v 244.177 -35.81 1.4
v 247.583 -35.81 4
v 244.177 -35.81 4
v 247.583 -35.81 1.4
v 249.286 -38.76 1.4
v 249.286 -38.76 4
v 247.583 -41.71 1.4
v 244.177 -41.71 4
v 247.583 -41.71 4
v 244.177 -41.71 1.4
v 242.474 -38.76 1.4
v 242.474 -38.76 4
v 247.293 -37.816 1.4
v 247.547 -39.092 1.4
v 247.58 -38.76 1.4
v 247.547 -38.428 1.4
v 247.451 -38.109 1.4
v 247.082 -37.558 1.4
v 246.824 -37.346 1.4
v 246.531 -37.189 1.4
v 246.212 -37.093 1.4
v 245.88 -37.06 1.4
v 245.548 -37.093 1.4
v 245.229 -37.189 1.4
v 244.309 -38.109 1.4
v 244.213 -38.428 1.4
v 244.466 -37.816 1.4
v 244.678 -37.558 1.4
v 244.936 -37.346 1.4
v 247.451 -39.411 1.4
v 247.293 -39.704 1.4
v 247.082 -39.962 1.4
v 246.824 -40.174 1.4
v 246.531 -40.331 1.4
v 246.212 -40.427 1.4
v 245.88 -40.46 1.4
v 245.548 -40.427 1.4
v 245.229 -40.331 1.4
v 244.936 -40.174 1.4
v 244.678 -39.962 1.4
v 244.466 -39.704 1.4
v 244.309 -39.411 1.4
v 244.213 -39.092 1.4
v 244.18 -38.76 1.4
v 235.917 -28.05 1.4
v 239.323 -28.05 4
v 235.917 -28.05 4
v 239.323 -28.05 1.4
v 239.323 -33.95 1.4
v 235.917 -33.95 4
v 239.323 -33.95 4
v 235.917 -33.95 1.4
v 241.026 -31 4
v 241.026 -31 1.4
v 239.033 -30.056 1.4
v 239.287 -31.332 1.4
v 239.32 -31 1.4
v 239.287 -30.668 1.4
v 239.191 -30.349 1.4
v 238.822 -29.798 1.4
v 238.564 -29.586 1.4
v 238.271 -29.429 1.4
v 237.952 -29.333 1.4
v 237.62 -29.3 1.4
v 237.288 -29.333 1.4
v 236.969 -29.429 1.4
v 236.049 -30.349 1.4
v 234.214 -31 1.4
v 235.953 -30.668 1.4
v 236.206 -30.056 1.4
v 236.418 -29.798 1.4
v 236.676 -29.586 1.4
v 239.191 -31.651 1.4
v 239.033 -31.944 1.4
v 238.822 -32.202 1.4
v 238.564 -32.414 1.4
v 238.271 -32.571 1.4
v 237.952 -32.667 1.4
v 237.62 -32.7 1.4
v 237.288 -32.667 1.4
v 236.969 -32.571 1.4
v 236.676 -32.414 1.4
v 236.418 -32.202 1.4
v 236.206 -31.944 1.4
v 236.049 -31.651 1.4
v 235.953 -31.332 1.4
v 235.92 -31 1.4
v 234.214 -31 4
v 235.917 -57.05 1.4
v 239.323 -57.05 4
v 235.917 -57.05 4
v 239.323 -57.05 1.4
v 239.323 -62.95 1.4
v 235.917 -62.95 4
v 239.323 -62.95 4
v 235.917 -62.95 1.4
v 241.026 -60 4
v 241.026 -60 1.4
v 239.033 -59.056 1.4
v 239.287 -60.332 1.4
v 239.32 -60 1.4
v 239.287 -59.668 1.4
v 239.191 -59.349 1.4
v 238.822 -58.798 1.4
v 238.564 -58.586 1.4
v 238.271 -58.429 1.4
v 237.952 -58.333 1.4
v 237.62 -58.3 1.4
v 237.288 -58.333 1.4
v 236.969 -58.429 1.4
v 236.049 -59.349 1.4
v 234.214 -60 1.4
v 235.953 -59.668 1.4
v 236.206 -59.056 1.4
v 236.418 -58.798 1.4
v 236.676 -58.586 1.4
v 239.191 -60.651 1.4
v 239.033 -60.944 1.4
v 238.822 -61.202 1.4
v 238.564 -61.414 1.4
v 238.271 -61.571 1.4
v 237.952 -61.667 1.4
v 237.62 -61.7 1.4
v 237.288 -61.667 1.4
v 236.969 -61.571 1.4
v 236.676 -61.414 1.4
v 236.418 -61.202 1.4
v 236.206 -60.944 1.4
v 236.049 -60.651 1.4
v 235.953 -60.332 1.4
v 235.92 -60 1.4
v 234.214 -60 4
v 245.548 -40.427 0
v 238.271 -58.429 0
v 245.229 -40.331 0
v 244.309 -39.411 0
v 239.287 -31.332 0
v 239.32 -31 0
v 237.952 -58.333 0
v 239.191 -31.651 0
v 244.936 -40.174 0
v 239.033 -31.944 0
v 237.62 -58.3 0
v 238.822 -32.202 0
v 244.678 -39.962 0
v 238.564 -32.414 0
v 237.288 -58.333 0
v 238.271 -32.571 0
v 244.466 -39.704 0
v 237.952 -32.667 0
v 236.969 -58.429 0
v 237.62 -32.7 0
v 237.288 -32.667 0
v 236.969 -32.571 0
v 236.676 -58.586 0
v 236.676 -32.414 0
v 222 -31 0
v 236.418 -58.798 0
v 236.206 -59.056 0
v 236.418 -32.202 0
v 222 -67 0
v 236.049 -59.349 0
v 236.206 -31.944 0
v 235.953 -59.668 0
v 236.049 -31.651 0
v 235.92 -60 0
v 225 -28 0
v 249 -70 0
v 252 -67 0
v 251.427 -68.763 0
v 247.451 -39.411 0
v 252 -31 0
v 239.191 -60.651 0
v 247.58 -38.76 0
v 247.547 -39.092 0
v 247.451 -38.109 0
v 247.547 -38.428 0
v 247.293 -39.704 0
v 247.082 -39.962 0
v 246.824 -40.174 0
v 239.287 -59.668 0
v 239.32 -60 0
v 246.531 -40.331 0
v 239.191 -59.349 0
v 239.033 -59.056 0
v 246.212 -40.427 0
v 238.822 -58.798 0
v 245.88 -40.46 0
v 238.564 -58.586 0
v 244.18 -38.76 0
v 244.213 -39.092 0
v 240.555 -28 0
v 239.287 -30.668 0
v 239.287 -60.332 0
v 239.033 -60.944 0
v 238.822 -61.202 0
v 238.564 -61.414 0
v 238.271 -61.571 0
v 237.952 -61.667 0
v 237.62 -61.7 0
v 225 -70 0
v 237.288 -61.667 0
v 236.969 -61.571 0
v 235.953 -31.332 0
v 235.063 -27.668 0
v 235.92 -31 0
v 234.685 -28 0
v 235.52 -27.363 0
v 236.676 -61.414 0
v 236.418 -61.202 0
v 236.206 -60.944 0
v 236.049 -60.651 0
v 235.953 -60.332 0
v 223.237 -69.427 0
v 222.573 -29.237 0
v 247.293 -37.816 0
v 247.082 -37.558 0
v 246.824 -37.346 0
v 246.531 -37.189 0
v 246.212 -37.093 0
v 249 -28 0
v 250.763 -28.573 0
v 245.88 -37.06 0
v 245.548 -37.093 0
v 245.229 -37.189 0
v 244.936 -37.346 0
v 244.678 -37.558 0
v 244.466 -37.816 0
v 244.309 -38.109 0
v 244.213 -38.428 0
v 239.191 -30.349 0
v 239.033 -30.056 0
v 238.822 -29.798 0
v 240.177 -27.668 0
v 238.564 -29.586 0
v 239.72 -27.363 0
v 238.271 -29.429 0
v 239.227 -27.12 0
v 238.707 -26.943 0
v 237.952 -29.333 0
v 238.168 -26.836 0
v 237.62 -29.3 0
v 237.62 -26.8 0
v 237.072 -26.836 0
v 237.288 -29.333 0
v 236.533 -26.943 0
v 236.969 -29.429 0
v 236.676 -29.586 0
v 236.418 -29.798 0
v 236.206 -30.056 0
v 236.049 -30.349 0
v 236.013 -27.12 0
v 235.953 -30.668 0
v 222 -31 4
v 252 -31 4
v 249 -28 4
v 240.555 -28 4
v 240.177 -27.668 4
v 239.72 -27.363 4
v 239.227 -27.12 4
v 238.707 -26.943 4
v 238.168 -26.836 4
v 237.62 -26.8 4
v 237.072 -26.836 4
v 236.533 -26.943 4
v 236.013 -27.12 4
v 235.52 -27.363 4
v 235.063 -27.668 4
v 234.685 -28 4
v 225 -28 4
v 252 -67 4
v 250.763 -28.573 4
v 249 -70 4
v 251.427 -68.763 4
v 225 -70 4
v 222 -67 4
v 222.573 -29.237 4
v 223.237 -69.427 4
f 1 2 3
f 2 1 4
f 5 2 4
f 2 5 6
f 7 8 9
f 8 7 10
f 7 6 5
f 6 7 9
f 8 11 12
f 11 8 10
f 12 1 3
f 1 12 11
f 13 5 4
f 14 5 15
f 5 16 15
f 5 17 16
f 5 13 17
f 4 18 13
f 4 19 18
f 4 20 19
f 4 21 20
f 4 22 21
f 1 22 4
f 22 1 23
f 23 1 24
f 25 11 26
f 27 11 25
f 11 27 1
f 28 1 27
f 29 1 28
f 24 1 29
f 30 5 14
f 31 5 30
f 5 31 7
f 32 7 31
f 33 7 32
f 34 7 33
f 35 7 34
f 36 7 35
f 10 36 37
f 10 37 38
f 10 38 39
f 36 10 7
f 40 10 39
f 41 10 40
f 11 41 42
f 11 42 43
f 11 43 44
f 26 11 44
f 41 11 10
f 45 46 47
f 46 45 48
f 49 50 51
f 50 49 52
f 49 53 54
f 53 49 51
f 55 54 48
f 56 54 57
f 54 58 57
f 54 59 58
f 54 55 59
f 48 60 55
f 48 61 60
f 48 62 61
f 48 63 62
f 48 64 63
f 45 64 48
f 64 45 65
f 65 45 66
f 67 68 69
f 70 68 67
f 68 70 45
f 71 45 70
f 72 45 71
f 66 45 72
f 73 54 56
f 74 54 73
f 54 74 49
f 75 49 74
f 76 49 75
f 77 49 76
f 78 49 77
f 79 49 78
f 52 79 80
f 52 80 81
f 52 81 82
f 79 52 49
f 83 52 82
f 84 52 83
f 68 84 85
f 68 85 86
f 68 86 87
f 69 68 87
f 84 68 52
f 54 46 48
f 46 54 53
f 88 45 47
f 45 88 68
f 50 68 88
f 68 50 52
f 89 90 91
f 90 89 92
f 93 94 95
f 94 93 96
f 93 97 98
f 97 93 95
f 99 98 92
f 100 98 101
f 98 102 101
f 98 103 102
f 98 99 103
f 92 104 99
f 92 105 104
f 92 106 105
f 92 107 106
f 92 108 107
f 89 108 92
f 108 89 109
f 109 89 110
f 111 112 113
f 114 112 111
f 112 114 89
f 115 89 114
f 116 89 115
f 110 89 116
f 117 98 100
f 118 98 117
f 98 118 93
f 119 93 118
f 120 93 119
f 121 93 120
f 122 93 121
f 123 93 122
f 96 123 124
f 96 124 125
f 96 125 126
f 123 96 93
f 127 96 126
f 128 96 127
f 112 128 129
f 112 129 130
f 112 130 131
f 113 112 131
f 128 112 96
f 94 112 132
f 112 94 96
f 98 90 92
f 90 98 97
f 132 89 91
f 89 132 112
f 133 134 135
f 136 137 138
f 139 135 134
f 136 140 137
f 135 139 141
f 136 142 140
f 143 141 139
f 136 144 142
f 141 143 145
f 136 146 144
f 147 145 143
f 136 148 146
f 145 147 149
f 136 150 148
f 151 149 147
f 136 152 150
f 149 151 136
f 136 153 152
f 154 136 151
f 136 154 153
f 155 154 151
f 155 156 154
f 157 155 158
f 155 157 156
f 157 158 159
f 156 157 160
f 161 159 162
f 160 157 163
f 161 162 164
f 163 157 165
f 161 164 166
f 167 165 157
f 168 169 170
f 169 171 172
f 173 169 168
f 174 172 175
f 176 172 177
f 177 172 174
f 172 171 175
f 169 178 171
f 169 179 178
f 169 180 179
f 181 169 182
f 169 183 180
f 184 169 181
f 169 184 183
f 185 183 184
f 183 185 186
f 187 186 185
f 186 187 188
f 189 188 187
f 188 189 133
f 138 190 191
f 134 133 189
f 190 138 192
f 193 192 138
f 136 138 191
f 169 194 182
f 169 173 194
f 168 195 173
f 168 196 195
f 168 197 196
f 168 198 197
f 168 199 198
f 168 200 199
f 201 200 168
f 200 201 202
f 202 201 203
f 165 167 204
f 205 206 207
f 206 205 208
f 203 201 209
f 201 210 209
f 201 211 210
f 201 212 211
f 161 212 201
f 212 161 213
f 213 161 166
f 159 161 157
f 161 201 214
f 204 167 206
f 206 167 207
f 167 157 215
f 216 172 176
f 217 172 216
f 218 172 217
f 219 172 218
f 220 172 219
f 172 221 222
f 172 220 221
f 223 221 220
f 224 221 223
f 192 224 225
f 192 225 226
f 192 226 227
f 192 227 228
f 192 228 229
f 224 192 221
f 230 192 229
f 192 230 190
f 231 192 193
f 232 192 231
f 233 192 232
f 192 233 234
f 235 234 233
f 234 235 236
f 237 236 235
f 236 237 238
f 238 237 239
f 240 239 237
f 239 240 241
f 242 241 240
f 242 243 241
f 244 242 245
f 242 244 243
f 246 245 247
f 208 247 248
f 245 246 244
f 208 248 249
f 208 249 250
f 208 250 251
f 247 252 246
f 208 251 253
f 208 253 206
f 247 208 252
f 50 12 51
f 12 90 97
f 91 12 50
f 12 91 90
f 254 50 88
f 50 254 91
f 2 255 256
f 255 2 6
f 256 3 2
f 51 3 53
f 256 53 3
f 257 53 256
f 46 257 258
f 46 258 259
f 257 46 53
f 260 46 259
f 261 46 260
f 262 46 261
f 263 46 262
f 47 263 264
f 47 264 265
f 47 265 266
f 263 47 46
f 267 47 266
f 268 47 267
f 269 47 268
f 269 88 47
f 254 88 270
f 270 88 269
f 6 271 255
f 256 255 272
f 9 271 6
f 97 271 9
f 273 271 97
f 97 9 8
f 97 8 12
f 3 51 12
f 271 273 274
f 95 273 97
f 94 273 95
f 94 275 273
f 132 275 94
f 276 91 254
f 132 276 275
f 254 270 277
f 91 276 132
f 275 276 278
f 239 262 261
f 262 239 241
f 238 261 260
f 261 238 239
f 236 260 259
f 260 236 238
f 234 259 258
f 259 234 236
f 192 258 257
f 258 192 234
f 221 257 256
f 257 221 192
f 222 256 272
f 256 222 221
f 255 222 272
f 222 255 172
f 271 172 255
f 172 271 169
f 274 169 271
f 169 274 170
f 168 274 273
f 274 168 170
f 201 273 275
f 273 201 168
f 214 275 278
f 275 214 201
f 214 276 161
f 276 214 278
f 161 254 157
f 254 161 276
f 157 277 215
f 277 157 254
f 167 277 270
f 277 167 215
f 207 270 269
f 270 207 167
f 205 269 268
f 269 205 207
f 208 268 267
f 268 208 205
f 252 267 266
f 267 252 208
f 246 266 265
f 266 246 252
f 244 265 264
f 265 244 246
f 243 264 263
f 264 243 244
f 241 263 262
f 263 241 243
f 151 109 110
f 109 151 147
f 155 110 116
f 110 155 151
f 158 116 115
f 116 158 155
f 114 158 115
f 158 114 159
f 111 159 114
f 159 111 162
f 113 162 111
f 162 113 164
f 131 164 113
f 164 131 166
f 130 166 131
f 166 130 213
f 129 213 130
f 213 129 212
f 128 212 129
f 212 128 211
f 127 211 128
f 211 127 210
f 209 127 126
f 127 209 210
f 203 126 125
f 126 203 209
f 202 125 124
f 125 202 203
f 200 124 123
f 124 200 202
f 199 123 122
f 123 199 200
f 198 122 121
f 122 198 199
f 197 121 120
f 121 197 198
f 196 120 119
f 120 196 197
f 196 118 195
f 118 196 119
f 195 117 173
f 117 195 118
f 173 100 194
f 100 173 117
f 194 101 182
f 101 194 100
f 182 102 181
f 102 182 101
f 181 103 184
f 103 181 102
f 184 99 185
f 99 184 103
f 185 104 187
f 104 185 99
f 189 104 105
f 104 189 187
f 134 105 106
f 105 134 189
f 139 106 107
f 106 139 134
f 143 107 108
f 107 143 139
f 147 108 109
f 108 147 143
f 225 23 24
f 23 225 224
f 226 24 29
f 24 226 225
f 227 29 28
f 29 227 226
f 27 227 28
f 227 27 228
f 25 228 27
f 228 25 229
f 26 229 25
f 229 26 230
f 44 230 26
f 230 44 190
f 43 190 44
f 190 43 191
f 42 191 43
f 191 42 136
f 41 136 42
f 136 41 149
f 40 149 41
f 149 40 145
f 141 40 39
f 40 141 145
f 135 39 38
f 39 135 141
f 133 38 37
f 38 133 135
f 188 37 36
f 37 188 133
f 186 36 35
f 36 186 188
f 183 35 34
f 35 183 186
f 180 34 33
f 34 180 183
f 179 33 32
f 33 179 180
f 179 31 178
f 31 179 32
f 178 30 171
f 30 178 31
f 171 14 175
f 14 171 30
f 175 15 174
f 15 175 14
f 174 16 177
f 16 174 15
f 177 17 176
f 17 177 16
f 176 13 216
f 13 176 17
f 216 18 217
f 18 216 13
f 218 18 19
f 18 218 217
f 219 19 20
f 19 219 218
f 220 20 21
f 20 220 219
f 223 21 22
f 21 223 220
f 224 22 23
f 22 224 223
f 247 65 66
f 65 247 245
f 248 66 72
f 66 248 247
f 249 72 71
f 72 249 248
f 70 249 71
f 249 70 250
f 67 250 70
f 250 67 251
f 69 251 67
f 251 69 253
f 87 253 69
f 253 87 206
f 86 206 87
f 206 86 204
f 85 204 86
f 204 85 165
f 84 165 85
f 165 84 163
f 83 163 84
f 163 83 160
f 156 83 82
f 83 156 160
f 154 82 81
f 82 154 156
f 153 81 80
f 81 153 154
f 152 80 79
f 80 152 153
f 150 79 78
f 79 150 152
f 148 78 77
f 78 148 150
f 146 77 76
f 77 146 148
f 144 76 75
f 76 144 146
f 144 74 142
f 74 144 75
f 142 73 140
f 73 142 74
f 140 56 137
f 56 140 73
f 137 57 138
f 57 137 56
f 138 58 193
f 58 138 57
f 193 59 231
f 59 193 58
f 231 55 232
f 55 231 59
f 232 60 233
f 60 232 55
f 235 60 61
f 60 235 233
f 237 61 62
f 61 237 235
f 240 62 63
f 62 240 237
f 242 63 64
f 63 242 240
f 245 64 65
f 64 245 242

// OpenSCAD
// NEXUS plate 2 rear pad - a small plain plate on plate 2's rear, to drill for whatever comes next (MEC-19)
//
//   openscad -D 'PART="tray"' -o plate2-rear-pad.stl plate2-rear-pad.scad
//
// STATUS 2026-10-06: PROPOSED with Hedi, to go in the same print order as the carrier and compute trays (one order costs less than two).
//
// FRAME. Plate 2's own: x from the front to the rear, y from the vehicle's RIGHT edge to its LEFT, mm (the layout frame of MEC-15 /
// MEC-17 / hardware/scripts/chassis-layout.py). Plates 1, 2 and 3 are identical, so plate3-data.scad is plate 2's data too. With z up the
// layout frame is a mirror image of the real world, so the output passes through real() once. The pad's underside is z 0, on plate 2's top face.
//
// WHERE, AND WHY THERE. MEC-12 keeps the rear of plate 2 (x 224-266) empty for the harness to the fascia's three ports. The pad takes the part of
// it that nothing needs: x 222-252, y 28-70. It stays clear of
//   - the cross-slot (x 260.3-265.7) and the fascia pads and clamp holes (x 262.9), which the J7 CAN lead and the fascia harness use;
//   - the chassis standoffs at (256.82, 22.17 and 98.36), 6 mm hexagons: 3.4 mm to the nearest;
//   - the lane of the J7 CAN lead, which comes down the cross-slot at about y 74 and runs forward to board B (y 92 at x 190): the pad ends at y 70;
//   - the Discovery, which overhangs the carrier tray to x 217.5 at z 95 and above: the pad is 4 mm tall, so nothing meets it.
// THREE FIXINGS, all M3 from below into a nut held in a pocket on top, each on plate 2's own opening: one plate hole (245.88, 38.76) and two
// places along the long slot at x 235.47-239.77 (a 4.29 mm slot: the screw may slide along it, a washer under the head, so the pad can move
// along y by hand before it is tightened). Three points make a plane; the pad does not rock. The harness taped under plate 2 stops at x 202 (BOM 3.8 / MEC-16), so the screw heads are free.
//
// TO MEASURE before ordering: the M3 nut's real across-flats and thickness (assumed 5.5 and 2.4 mm, as the Bauer's pockets in MEC-17).

PART = "tray";             // "tray" | "plan" | "outline"

T            = 4.0;       // as the other trays
R_CORNER     = 3.0;
M3_POCKET    = 5.9;       // M3 nut across flats 5.5, a printing fit (MEC-17)
M3_DEPTH     = 2.6;
FIX_D        = 3.4;       // M3 through the pad, loose; the plate's slot or hole is the guide
FIX_PAD_D    = 8.4;       // a round pad round each fixing, so no pocket breaks the edge

PAD = [222.0, 252.0, 28.0, 70.0];                              // x0 x1 y0 y1
FIX = [[245.88, 38.76], [237.62, 31.0], [237.62, 60.0]];       // plate hole, then two places along the slot (y 26.1-94.4)

module rrect(x0, x1, y0, y1, r = R_CORNER)
    translate([x0 + r, y0 + r]) offset(r = r) square([x1 - x0 - 2 * r, y1 - y0 - 2 * r]);
module real() mirror([0, 1, 0]) children();

module body() difference() {
    linear_extrude(T) difference() {
        union() { rrect(PAD[0], PAD[1], PAD[2], PAD[3]); for (f = FIX) translate(f) circle(d = FIX_PAD_D, $fn = 48); }
        for (f = FIX) translate(f) circle(d = FIX_D, $fn = 32);
    }
    for (f = FIX) translate([f[0], f[1], T - M3_DEPTH]) cylinder(d = M3_POCKET / cos(30), h = M3_DEPTH + 0.01, $fn = 6);
}

if (PART == "tray") real() body();
else if (PART == "plan") real() color("lightgrey") body();
else if (PART == "outline") union() { rrect(PAD[0], PAD[1], PAD[2], PAD[3]); for (f = FIX) translate(f) circle(d = FIX_PAD_D, $fn = 48); }
